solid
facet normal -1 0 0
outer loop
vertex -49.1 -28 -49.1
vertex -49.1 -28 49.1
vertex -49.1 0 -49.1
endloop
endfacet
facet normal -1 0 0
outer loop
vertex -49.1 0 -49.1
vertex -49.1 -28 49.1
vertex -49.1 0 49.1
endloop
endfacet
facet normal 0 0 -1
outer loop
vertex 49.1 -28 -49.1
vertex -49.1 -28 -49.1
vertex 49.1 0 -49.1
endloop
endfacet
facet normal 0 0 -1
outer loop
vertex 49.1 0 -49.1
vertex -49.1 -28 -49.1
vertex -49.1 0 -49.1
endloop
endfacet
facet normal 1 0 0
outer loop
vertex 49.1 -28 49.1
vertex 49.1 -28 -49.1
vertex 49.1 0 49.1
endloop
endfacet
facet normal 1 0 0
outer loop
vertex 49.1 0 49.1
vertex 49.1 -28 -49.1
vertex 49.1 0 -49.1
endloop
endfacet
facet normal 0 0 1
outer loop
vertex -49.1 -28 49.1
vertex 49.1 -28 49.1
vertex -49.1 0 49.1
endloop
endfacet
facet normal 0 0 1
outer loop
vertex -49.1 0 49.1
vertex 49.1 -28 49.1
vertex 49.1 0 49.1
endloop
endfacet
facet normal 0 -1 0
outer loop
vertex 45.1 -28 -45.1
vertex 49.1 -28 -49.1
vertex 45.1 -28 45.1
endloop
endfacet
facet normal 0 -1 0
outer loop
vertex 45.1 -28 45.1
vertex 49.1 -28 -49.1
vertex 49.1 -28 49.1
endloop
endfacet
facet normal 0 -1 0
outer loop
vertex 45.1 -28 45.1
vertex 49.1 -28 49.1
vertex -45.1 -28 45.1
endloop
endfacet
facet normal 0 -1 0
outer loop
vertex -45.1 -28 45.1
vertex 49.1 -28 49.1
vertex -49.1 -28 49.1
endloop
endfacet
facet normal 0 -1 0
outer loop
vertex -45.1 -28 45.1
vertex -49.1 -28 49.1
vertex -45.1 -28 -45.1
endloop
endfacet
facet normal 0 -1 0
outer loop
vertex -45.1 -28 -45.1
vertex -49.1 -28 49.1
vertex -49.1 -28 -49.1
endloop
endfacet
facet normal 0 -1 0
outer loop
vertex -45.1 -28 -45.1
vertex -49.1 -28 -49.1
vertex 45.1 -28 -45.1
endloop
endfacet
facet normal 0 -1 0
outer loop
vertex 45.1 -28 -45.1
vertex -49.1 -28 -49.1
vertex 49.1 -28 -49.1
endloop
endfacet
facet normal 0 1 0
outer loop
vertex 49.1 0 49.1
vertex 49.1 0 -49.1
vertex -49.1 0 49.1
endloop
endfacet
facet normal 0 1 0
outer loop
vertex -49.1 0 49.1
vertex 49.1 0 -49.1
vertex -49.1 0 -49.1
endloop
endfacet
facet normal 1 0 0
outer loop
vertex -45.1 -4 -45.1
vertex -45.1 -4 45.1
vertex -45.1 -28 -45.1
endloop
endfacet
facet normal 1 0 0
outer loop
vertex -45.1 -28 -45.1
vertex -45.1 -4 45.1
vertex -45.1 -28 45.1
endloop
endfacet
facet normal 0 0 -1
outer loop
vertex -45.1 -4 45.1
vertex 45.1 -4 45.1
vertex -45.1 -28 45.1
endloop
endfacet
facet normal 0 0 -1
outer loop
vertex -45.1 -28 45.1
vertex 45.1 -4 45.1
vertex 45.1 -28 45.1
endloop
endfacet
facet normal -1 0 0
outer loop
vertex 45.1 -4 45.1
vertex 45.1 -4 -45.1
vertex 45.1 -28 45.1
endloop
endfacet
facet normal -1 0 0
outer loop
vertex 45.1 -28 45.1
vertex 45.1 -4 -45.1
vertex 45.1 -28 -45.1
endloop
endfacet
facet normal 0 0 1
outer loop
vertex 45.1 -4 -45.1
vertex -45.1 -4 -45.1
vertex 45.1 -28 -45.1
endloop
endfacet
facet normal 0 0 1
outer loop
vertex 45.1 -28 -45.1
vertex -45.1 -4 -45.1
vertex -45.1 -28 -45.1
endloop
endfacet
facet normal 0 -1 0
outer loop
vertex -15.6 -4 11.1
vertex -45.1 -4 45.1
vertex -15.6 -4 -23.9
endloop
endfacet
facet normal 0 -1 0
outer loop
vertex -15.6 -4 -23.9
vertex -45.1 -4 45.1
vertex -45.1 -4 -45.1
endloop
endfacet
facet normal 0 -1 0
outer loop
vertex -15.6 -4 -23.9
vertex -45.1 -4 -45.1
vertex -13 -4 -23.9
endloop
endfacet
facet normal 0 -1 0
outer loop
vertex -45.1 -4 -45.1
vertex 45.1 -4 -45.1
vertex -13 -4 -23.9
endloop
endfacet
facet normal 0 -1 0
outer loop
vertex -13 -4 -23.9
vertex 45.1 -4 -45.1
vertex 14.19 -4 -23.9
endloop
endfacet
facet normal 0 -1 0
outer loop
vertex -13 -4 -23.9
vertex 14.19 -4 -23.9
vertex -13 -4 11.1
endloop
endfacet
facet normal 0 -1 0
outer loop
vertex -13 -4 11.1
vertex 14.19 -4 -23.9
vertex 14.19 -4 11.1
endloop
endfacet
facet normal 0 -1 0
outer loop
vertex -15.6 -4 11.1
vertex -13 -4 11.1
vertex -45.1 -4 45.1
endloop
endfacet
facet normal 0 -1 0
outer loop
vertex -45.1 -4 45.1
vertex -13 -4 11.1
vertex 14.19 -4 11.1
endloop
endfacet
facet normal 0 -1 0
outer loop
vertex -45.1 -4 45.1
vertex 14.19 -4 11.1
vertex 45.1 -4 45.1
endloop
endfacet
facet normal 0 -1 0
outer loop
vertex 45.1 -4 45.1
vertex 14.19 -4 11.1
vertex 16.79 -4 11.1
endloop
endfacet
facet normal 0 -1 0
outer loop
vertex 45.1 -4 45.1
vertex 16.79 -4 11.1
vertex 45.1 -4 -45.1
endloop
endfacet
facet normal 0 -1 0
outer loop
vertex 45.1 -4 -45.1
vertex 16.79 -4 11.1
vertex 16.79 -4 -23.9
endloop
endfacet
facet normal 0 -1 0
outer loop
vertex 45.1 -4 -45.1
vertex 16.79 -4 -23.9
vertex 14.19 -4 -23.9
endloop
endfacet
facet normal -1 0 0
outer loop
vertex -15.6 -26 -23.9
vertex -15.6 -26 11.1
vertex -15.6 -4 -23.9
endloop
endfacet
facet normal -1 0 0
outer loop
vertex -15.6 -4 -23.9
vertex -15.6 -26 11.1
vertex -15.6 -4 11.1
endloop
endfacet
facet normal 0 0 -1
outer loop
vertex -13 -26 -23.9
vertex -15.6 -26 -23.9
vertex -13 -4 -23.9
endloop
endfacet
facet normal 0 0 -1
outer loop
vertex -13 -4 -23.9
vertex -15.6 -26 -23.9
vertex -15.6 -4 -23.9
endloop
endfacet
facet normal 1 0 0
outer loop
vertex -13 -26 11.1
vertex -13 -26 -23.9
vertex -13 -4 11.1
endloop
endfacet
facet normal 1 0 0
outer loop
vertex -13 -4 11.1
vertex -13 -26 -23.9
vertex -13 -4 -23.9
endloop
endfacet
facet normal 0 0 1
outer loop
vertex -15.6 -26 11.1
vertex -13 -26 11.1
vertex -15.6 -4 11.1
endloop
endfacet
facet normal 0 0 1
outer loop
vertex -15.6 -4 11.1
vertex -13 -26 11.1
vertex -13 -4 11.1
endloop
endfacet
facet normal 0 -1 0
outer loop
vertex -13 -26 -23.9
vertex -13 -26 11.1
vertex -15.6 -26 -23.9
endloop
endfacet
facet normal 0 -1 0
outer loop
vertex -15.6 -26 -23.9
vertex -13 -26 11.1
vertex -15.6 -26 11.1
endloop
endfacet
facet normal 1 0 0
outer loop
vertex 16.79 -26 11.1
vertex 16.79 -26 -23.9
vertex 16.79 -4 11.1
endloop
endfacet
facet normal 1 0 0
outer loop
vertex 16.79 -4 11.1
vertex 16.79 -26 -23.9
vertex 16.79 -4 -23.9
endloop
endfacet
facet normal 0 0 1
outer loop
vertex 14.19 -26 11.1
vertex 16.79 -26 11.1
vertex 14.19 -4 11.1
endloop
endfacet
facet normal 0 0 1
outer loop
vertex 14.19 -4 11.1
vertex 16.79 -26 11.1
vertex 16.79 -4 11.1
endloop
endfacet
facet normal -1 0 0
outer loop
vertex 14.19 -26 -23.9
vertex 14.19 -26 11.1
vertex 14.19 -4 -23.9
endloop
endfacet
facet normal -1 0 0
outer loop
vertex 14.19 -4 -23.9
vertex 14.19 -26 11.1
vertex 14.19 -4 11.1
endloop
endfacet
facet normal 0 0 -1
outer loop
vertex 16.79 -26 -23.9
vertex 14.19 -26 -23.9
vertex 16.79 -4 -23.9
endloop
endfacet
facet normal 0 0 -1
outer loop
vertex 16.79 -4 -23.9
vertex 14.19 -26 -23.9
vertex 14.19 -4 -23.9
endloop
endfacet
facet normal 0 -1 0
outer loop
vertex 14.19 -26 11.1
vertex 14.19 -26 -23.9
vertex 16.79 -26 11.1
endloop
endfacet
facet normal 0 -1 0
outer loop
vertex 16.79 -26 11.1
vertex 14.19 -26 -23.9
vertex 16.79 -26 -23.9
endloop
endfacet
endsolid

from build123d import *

# Parameters (mm, degrees)
CROQUIS1_W              = 98.2
CROQUIS1_H              = 98.2
SALIENTE_EXTRUIR2_DEPTH = 28
CROQUIS2_W              = 90.2
CROQUIS2_H              = 90.2
CORTAR_EXTRUIR1_DEPTH   = 24
CROQUIS3_W              = 2.6
CROQUIS3_H              = 35
SALIENTE_EXTRUIR3_DEPTH = 22
CROQUIS5_W              = 2.6
CROQUIS5_H              = 35
SALIENTE_EXTRUIR4_DEPTH = 22


with BuildPart() as part:
    # Croquis1 → Saliente-Extruir2 (new body)
    with BuildSketch(Plane(origin=(0, 0, 0), x_dir=(1, 0, 0), z_dir=(0, 1, 0))):
        Rectangle(CROQUIS1_W, CROQUIS1_H)
    extrude(amount=-SALIENTE_EXTRUIR2_DEPTH)

    # Croquis2 → Cortar-Extruir1 (cut)
    with BuildSketch(Plane.XZ.offset(28)):
        Rectangle(CROQUIS2_W, CROQUIS2_H)
    extrude(amount=-CORTAR_EXTRUIR1_DEPTH, mode=Mode.SUBTRACT)

    # Croquis3 → Saliente-Extruir3 (add)
    with BuildSketch(Plane.XZ.offset(4)):
        with Locations((-14.3, -6.4)):
            Rectangle(CROQUIS3_W, CROQUIS3_H)
    extrude(amount=SALIENTE_EXTRUIR3_DEPTH)

    # Croquis5 → Saliente-Extruir4 (add)
    with BuildSketch(Plane.XZ.offset(4)):
        with Locations((15.49, -6.4)):
            Rectangle(CROQUIS5_W, CROQUIS5_H)
    extrude(amount=SALIENTE_EXTRUIR4_DEPTH)


solid = part.part
